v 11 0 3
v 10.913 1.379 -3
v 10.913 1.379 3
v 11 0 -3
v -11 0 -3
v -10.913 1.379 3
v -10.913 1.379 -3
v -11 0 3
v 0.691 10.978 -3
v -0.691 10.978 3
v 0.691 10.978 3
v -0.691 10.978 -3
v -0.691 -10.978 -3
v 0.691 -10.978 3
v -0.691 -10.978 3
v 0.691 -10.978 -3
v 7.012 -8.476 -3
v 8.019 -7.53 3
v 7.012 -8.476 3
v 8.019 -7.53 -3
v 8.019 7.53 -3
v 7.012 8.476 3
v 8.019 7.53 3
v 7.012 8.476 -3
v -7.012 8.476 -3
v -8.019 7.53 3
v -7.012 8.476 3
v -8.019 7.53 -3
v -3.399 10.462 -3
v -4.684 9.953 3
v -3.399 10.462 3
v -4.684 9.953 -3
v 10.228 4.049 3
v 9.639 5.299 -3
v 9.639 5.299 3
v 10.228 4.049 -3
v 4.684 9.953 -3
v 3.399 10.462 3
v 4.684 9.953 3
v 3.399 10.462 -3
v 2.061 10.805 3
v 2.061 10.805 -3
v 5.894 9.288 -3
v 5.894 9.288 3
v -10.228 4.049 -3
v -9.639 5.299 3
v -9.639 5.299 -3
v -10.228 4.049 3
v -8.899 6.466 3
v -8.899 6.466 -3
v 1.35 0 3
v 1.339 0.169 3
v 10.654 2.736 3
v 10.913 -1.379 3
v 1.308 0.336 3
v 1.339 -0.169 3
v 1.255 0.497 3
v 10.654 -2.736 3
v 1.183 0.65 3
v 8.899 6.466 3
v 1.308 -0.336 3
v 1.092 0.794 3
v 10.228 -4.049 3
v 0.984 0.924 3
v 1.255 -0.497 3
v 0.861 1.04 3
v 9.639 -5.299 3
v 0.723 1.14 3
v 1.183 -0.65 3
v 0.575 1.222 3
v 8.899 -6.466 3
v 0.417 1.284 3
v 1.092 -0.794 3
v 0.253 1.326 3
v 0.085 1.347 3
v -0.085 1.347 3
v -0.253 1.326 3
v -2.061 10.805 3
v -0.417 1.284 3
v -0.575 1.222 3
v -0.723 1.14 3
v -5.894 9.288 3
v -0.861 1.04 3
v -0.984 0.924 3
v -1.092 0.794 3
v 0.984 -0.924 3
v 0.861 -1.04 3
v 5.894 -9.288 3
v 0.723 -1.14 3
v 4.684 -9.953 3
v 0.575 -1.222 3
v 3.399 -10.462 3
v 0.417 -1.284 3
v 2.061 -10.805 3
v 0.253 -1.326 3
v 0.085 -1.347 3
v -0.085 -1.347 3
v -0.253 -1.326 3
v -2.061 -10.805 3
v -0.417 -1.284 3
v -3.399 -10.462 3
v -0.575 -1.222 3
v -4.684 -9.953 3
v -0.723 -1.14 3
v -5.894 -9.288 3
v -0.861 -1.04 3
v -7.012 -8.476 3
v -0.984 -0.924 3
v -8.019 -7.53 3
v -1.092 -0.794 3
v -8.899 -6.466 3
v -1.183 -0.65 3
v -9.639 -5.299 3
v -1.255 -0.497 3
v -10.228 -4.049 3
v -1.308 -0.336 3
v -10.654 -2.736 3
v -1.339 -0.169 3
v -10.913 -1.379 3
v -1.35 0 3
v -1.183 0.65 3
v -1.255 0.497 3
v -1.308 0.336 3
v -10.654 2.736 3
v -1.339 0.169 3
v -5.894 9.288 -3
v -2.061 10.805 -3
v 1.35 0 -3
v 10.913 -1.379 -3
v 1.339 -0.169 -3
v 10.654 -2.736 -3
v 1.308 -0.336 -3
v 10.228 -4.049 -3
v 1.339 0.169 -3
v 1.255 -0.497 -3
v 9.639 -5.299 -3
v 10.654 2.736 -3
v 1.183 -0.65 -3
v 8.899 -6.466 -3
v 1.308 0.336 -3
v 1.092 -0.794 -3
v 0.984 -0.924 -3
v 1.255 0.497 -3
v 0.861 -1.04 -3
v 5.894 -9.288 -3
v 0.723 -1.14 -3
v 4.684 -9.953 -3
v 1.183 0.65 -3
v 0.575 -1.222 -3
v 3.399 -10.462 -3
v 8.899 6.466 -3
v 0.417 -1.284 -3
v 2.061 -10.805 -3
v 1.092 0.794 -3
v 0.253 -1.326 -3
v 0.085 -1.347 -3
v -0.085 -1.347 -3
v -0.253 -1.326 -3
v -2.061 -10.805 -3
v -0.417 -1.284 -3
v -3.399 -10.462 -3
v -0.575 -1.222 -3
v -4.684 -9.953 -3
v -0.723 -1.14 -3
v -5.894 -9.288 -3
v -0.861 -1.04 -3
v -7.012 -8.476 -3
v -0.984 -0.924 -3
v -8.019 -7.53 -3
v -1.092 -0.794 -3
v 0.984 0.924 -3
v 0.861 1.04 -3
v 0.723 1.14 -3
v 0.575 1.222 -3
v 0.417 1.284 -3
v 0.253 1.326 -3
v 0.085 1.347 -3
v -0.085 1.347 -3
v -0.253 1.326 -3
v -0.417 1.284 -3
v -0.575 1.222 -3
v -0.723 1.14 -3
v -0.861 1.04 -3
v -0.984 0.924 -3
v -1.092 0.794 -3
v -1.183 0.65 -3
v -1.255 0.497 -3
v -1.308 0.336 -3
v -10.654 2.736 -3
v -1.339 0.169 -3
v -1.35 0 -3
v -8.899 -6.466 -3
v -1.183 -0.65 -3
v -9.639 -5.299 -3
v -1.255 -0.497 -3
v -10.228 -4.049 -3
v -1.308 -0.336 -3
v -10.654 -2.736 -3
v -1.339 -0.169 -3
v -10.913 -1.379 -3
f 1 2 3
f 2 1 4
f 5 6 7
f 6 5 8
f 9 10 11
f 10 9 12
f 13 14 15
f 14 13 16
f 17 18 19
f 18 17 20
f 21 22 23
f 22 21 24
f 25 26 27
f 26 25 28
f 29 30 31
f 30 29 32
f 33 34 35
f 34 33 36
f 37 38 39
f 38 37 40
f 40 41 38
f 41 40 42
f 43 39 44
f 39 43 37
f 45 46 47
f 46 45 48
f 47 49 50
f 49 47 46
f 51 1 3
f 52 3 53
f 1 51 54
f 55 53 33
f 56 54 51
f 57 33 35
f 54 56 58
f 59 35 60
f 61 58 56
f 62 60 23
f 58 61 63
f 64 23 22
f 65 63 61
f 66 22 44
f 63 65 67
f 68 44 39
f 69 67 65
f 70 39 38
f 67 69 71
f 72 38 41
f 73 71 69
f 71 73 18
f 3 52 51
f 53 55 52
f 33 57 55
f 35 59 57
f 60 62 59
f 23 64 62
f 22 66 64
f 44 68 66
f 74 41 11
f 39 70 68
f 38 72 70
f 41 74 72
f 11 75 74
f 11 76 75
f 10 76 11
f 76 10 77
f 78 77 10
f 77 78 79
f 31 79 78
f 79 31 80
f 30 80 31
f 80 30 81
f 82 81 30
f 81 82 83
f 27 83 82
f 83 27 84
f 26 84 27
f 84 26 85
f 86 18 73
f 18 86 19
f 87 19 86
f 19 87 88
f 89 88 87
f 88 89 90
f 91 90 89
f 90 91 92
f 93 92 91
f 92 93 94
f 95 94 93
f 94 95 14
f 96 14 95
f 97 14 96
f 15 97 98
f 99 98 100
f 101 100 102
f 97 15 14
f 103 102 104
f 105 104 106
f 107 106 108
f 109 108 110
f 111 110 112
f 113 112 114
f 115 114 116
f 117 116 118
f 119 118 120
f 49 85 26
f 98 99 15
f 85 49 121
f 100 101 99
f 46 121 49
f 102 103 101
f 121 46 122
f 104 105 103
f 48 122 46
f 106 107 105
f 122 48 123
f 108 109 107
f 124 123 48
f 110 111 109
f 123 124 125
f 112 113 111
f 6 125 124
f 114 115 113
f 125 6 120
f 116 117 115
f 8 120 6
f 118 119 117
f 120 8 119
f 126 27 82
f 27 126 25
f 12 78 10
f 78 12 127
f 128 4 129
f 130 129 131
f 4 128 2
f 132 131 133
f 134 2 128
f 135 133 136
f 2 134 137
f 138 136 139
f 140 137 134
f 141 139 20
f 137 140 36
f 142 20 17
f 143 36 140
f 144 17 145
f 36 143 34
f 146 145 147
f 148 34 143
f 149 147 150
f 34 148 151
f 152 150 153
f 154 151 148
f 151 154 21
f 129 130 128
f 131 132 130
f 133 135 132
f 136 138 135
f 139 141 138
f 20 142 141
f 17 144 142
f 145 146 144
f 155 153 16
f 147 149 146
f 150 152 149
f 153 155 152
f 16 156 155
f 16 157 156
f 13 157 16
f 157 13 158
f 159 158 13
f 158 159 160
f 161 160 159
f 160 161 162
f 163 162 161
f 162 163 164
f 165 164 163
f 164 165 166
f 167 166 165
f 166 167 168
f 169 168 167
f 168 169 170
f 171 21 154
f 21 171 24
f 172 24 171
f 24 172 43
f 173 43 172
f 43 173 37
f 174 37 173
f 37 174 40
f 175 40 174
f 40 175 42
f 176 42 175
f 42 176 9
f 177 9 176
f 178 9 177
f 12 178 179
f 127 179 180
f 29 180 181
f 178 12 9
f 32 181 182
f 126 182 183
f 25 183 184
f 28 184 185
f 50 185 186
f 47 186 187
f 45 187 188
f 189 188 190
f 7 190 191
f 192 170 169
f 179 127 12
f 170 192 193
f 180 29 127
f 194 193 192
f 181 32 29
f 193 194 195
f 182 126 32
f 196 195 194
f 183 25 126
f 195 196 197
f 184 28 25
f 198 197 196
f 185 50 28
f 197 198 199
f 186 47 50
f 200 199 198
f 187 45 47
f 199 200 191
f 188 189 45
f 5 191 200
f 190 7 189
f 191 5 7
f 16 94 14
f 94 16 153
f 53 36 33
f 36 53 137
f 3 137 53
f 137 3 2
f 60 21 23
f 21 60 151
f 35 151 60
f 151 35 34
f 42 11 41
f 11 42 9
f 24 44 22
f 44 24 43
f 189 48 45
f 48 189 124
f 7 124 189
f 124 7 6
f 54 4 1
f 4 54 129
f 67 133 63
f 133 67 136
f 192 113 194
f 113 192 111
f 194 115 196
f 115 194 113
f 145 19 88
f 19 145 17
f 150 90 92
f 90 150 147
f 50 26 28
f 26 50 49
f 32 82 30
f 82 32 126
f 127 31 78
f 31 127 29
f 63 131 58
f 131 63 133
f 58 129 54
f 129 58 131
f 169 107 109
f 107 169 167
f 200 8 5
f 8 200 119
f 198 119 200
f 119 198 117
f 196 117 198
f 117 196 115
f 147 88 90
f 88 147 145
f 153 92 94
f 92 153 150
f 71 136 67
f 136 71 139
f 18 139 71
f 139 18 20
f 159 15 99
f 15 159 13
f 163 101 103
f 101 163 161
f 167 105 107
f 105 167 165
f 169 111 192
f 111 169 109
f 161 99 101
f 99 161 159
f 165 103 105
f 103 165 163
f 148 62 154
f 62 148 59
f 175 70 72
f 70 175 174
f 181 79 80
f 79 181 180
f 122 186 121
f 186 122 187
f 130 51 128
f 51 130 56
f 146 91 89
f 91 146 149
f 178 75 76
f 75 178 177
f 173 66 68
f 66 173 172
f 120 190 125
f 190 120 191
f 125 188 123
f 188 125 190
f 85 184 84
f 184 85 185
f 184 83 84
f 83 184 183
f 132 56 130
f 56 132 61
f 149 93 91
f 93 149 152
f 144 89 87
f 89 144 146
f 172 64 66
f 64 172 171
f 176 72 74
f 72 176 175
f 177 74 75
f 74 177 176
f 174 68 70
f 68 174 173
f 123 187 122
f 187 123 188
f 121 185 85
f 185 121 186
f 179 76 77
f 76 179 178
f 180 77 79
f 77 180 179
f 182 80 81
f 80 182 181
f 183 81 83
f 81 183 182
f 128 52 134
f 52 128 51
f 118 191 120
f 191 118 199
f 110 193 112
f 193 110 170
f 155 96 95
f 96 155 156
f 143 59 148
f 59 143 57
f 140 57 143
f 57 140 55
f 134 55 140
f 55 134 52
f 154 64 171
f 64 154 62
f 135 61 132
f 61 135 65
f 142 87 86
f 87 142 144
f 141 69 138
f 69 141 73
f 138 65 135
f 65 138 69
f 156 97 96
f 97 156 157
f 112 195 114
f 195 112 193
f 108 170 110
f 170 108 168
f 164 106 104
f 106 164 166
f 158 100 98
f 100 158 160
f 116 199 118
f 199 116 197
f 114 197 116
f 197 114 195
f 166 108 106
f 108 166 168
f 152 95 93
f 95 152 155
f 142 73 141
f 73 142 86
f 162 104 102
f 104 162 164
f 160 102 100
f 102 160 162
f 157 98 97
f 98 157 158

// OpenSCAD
$fn = 50;


difference() {
	union() {
		translate(v = [0, 0, -3.0000000000]) {
			cylinder(h = 6, r = 11.0000000000);
		}
	}
	union() {
		translate(v = [0, 0, -100.0000000000]) {
			cylinder(h = 200, r = 1.3500000000);
		}
	}
}
